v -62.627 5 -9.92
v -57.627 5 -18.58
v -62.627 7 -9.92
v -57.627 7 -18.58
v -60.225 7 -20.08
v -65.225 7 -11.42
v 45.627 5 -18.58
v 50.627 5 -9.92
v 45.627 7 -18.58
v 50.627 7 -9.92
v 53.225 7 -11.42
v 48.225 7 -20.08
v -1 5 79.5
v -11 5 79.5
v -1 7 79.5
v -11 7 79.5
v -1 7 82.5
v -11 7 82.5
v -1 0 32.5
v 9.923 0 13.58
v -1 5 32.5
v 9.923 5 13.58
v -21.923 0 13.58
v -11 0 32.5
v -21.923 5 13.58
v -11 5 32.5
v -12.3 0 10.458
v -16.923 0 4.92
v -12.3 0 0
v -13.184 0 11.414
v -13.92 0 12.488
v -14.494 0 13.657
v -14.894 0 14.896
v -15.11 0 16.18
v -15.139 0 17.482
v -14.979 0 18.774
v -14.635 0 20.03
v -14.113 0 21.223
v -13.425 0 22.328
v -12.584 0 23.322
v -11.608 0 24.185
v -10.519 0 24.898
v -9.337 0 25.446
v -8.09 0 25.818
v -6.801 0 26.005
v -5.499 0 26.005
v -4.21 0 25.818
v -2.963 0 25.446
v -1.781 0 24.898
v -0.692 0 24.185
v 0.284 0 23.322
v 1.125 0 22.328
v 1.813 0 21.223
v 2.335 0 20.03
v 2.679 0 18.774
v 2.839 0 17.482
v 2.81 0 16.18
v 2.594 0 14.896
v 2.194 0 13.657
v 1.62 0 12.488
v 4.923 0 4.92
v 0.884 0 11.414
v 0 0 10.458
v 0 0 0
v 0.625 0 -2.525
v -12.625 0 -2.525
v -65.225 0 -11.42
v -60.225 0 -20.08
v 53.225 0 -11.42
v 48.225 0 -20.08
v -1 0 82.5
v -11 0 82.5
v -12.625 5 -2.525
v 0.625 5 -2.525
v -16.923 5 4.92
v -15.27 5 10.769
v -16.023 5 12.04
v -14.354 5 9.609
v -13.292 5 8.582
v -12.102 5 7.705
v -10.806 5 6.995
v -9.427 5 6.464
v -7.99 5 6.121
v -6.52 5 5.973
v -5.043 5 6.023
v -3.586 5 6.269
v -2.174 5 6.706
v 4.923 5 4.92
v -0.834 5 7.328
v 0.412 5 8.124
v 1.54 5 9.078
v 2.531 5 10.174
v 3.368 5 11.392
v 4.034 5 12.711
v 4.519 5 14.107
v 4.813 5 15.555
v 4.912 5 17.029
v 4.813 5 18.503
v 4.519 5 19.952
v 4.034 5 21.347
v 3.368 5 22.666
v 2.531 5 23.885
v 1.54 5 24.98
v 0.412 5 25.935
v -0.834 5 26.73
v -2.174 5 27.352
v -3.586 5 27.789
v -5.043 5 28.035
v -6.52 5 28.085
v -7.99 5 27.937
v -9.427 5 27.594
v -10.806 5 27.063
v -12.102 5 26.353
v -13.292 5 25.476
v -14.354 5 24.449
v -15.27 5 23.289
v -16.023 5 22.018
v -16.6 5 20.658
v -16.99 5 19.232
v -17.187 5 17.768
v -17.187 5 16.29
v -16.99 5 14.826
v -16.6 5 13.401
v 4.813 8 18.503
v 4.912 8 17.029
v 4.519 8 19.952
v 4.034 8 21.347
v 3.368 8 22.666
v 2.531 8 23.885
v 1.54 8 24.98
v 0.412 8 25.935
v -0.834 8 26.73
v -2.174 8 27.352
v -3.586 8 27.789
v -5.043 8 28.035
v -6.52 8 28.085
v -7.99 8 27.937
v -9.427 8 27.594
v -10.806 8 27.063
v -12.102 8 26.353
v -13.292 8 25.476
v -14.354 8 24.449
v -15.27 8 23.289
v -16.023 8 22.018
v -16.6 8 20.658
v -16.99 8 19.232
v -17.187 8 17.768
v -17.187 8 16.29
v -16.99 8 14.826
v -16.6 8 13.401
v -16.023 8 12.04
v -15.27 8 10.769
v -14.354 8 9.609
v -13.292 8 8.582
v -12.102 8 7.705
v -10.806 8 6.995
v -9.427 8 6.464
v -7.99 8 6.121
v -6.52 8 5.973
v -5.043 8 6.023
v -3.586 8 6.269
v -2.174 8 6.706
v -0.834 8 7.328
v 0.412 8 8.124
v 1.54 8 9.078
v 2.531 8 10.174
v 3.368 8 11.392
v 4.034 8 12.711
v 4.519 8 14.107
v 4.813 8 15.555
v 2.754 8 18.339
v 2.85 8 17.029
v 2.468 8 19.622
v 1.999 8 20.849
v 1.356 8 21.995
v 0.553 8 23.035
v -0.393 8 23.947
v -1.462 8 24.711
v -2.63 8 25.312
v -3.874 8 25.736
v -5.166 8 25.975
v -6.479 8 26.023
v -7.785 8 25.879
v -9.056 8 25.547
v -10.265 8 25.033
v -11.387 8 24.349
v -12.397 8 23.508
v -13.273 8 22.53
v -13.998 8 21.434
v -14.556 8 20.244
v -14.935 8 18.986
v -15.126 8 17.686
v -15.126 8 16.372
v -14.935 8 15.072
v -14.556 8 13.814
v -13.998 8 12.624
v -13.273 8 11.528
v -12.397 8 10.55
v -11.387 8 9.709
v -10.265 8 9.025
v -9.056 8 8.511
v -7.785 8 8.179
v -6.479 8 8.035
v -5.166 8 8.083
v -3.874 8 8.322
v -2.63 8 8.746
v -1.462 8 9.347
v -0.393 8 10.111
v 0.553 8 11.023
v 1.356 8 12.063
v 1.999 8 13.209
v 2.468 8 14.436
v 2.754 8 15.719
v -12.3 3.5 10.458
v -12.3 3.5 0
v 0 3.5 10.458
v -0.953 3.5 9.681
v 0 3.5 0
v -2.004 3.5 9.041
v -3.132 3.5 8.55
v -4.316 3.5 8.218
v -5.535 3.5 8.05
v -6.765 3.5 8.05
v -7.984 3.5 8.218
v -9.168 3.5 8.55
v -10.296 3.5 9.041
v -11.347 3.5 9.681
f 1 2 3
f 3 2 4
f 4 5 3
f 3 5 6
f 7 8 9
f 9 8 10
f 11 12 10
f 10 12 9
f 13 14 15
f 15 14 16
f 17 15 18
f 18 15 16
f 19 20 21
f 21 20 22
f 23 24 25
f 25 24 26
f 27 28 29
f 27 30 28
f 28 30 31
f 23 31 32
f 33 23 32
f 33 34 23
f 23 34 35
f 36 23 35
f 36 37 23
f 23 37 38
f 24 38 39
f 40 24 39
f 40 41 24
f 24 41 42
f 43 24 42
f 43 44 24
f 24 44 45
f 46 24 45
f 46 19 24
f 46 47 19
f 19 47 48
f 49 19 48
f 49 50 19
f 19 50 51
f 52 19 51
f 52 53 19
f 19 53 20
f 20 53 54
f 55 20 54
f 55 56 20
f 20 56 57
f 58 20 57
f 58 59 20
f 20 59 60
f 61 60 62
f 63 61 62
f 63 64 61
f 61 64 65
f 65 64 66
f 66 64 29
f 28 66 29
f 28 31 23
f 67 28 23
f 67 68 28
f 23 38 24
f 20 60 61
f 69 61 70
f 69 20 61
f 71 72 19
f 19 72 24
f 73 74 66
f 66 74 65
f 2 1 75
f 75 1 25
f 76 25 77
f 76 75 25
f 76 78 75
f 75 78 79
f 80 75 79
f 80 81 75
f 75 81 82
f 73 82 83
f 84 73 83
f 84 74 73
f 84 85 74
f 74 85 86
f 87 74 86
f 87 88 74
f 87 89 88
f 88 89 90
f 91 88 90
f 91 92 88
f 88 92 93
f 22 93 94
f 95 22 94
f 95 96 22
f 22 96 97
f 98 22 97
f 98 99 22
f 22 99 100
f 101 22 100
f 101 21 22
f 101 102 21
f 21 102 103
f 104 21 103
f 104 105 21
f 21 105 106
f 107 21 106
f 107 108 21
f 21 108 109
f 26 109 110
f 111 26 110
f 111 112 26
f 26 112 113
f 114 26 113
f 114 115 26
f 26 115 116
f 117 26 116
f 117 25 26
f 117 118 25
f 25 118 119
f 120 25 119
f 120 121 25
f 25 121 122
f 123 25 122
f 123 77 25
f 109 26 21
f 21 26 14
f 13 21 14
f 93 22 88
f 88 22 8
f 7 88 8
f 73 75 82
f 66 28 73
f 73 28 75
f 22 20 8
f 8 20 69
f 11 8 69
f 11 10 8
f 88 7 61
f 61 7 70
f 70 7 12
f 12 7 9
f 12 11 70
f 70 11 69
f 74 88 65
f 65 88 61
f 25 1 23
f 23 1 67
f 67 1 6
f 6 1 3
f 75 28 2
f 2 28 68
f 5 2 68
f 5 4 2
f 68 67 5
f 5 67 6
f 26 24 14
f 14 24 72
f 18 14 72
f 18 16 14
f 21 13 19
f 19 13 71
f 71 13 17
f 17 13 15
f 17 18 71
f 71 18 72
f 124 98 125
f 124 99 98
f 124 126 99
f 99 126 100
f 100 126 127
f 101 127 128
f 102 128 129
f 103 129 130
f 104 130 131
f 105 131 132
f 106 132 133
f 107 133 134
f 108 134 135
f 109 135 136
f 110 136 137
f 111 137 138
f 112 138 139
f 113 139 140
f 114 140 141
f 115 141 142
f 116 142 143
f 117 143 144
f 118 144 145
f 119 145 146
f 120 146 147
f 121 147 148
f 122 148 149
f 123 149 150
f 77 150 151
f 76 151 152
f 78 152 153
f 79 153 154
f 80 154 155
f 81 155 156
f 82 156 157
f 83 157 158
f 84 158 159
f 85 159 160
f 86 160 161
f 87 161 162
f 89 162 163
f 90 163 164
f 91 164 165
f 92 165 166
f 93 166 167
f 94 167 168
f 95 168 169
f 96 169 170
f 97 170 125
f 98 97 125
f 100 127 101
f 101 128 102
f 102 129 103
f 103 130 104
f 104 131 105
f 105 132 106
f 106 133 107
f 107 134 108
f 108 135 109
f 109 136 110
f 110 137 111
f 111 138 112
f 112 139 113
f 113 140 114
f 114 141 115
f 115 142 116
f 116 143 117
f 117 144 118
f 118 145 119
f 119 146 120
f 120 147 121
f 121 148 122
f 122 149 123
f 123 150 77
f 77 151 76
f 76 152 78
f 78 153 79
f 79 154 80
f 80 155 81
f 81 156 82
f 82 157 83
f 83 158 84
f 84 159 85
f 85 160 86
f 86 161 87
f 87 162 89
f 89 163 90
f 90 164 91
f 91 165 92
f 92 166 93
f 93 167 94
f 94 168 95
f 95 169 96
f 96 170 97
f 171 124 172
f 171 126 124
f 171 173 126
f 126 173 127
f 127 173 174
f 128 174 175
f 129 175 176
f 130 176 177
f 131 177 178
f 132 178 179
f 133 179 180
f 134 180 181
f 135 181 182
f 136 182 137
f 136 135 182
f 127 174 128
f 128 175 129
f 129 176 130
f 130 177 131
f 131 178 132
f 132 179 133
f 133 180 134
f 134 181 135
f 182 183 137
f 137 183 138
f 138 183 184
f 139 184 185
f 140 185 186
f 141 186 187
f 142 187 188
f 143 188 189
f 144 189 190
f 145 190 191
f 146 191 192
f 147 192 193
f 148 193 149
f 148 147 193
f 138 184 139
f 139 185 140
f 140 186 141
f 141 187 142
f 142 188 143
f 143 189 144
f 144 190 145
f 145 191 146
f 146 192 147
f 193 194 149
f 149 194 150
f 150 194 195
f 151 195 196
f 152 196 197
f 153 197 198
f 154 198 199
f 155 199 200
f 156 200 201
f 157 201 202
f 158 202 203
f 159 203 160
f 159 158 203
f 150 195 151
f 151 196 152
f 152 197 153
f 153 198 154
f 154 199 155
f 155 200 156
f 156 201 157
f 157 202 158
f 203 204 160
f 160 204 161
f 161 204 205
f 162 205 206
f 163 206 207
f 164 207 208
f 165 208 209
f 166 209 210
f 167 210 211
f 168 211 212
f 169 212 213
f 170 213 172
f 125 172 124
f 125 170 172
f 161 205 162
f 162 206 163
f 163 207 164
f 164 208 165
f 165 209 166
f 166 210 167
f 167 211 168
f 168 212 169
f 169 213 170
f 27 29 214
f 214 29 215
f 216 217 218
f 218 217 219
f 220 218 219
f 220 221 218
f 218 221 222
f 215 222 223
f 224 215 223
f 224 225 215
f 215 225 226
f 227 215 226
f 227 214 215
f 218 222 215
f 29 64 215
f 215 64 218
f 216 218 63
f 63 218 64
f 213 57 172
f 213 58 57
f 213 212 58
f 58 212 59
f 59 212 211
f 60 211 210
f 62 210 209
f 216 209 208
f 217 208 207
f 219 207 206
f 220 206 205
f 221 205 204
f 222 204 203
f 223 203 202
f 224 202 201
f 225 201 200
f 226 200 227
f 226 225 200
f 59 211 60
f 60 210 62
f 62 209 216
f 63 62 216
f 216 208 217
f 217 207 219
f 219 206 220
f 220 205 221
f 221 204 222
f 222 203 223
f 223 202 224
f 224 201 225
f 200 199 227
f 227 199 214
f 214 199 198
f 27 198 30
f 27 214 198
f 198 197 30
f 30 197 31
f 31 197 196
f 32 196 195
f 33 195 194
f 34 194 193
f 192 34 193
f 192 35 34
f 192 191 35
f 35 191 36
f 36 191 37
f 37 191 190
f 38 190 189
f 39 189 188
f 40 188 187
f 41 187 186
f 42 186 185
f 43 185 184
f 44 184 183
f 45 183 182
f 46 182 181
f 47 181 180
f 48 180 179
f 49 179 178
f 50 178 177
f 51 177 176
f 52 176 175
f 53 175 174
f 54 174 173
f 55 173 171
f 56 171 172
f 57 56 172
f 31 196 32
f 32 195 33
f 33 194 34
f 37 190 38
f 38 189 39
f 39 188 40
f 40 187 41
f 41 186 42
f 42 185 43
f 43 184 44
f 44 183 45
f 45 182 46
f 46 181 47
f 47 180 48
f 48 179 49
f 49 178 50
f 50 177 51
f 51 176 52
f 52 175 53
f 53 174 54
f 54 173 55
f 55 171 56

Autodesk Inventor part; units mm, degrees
ref_plane "YZ Plane" through (0, 0, 0) normal (1, 0, 0) x (0, 1, 0)
ref_plane "XZ Plane" through (0, 0, 0) normal (0, 1, 0) x (-1, 0, 0)
ref_plane "XY Plane" through (0, 0, 0) normal (0, 0, 1) x (1, 0, 0)
sketch "Boceto1" plane through (0, 0, 0) normal (0, 1, 0) x (-1, 0, 0)
  circle A0 centre (6.15, 17.029) radius 9
  dimension "d2" = 18
sketch "Boceto2" plane through (0, 0, 0) normal (0, 1, 0) x (-1, 0, 0)
  line L0 (6, -14) -> (-20.8468, 32.5)
  line L1 (-20.8468, 32.5) -> (32.8468, 32.5)
  line L2 (32.8468, 32.5) -> (6, -14)
  point P0 (0, 0)
  point P1 (6, 17)
extrude "Extrusión1" add sketch "Boceto2" along normal blind 5
extrude "Extrusión2" cut sketch "Boceto1" along normal blind 5
sketch "Boceto3" plane through (0, 0, 0) normal (0, -1, 0) x (1, 0, 0)
  circle A0 centre (-6.15, 17.029) radius 9 projected
  line L0 (-12.3, 23.6) -> (0, 23.6)
  line L1 (0, 23.6) -> (0, 0)
  line L2 (0, 0) -> (-12.3, 0)
  line L3 (-12.3, 0) -> (-12.3, 23.6)
  point P0 (0, 0)
  point P1 (-6.15, 23.6)
  dimension "d7" = 12.3
  dimension "d8" = 23.6
extrude "Extrusión3" cut sketch "Boceto3" against normal blind 3.5 contours L1 A0 L3 L0 | L1 L2 L3 A0
sketch "Boceto4" plane through (0, 5, 0) normal (0, 1, 0) x (1, 0, 0)
  circle A0 centre (-6.15, -17.029) radius 9 projected
  circle A1 centre (-6.15, -17.029) radius 11.0617
  point P0 (0, 0)
extrude "Extrusión4" add sketch "Boceto4" along normal blind 3
sketch "Boceto5" plane through (-32.8468, 0, 32.5) normal (0, 0, 1) x (1, 0, 0)
  line L0 (53.6936, 0) -> (0, 0) projected
  line L1 (0, 5) -> (53.6936, 5) projected
  line L2 (21.8468, 5) -> (31.8468, 5)
  line L3 (31.8468, 5) -> (31.8468, 0)
  line L4 (31.8468, 0) -> (21.8468, 0)
  line L5 (21.8468, 0) -> (21.8468, 5)
  point P0 (32.8468, 0)
  point P1 (26.8468, 0)
  point P2 (26.8468, 0)
  dimension "d13" = 10
extrude "Extrusión5" add sketch "Boceto5" along normal blind 50
sketch "Boceto6" plane through (-32.8468, 0, 32.5) normal (-0.8660254, 0, -0.5) x (-0.5, 0, 0.8660254)
  line L0 (-53.6936, 5) -> (0, 5) projected
  line L1 (-31.8468, 5) -> (-21.8468, 5)
  line L2 (-21.8468, 5) -> (-21.8468, 0)
  line L3 (-21.8468, 0) -> (-31.8468, 0)
  line L4 (-31.8468, 0) -> (-31.8468, 5)
  point P0 (-44.5692, 0)
  point P1 (-26.8468, 5)
  point P2 (-26.8468, 5)
  dimension "d16" = 10
  dimension "d17" = 5
extrude "Extrusión6" add sketch "Boceto6" along normal blind 50
sketch "Boceto7" plane through (-6, 0, -14) normal (0.8660254, 0, -0.5) x (-0.5, 0, -0.8660254)
  line L0 (0, 0) -> (-53.6936, 0) projected
  line L1 (-53.6936, 5) -> (0, 5) projected
  line L2 (-31.8468, 5) -> (-21.8468, 5)
  line L3 (-21.8468, 5) -> (-21.8468, 0)
  line L4 (-21.8468, 0) -> (-31.8468, 0)
  line L5 (-31.8468, 0) -> (-31.8468, 5)
  point P0 (-15.1244, 0)
  point P1 (-26.8468, 5)
  point P2 (-26.8468, 5)
  dimension "d20" = 10
extrude "Extrusión7" add sketch "Boceto7" along normal blind 50
chamfer "Chaflán1" distance 13.25 angle 45 1 edges at (-6, 2.5, -14)
sketch "Boceto8" plane through (0, 0, 0) normal (0, -1, 0) x (1, 0, 0)
  line L0 (9.9234, 13.5801) -> (20.8468, 32.5) projected
  line L1 (20.8468, 32.5) -> (-1, 32.5) projected
  line L2 (-11, 32.5) -> (-32.8468, 32.5) projected
  line L3 (-32.8468, 32.5) -> (-21.9234, 13.5801) projected
  line L4 (-16.9234, 4.9199) -> (-12.625, -2.5252) projected
  line L5 (-21.9234, 13.5801) -> (-11, 32.5)
  line L6 (-11, 32.5) -> (-31.0383, 44.0691)
  line L7 (-31.0383, 44.0691) -> (-41.9617, 25.1492)
  line L8 (-41.9617, 25.1492) -> (-21.9234, 13.5801)
  line L9 (-1, 32.5) -> (9.9234, 13.5801)
  line L10 (9.9234, 13.5801) -> (33.1734, 27.0035)
  line L11 (33.1734, 27.0035) -> (22.25, 45.9234)
  line L12 (22.25, 45.9234) -> (-1, 32.5)
extrude "Extrusión8" cut sketch "Boceto8" against normal blind 5 contours L9 L1 L0 | L5 L3 L2
sketch "Boceto9" plane through (0, 5, 0) normal (0, 1, 0) x (1, 0, 0)
  line L0 (48.2247, 20.0801) -> (53.2247, 11.4199) projected
  line L1 (-16.9234, -4.9199) -> (-60.2247, 20.0801) projected
  line L2 (-11, -32.5) -> (-11, -82.5) projected
  line L3 (-60.2247, 20.0801) -> (-57.6266, 18.5801)
  line L4 (-57.6266, 18.5801) -> (-62.6266, 9.9199)
  line L5 (-62.6266, 9.9199) -> (-65.2247, 11.4199)
  line L6 (-65.2247, 11.4199) -> (-60.2247, 20.0801)
  line L7 (48.2247, 20.0801) -> (53.2247, 11.4199)
  line L8 (53.2247, 11.4199) -> (50.6266, 9.9199)
  line L9 (50.6266, 9.9199) -> (45.6266, 18.5801)
  line L10 (45.6266, 18.5801) -> (48.2247, 20.0801)
  line L11 (-1, -82.5) -> (-11, -82.5)
  line L12 (-11, -82.5) -> (-11, -79.5)
  line L13 (-11, -79.5) -> (-1, -79.5)
  line L14 (-1, -79.5) -> (-1, -82.5)
  point P0 (0, 0)
  dimension "d31" = 3
  dimension "d32" = 3
extrude "Extrusión9" add sketch "Boceto9" along normal blind 2
properties part number "BaseVentosa"
